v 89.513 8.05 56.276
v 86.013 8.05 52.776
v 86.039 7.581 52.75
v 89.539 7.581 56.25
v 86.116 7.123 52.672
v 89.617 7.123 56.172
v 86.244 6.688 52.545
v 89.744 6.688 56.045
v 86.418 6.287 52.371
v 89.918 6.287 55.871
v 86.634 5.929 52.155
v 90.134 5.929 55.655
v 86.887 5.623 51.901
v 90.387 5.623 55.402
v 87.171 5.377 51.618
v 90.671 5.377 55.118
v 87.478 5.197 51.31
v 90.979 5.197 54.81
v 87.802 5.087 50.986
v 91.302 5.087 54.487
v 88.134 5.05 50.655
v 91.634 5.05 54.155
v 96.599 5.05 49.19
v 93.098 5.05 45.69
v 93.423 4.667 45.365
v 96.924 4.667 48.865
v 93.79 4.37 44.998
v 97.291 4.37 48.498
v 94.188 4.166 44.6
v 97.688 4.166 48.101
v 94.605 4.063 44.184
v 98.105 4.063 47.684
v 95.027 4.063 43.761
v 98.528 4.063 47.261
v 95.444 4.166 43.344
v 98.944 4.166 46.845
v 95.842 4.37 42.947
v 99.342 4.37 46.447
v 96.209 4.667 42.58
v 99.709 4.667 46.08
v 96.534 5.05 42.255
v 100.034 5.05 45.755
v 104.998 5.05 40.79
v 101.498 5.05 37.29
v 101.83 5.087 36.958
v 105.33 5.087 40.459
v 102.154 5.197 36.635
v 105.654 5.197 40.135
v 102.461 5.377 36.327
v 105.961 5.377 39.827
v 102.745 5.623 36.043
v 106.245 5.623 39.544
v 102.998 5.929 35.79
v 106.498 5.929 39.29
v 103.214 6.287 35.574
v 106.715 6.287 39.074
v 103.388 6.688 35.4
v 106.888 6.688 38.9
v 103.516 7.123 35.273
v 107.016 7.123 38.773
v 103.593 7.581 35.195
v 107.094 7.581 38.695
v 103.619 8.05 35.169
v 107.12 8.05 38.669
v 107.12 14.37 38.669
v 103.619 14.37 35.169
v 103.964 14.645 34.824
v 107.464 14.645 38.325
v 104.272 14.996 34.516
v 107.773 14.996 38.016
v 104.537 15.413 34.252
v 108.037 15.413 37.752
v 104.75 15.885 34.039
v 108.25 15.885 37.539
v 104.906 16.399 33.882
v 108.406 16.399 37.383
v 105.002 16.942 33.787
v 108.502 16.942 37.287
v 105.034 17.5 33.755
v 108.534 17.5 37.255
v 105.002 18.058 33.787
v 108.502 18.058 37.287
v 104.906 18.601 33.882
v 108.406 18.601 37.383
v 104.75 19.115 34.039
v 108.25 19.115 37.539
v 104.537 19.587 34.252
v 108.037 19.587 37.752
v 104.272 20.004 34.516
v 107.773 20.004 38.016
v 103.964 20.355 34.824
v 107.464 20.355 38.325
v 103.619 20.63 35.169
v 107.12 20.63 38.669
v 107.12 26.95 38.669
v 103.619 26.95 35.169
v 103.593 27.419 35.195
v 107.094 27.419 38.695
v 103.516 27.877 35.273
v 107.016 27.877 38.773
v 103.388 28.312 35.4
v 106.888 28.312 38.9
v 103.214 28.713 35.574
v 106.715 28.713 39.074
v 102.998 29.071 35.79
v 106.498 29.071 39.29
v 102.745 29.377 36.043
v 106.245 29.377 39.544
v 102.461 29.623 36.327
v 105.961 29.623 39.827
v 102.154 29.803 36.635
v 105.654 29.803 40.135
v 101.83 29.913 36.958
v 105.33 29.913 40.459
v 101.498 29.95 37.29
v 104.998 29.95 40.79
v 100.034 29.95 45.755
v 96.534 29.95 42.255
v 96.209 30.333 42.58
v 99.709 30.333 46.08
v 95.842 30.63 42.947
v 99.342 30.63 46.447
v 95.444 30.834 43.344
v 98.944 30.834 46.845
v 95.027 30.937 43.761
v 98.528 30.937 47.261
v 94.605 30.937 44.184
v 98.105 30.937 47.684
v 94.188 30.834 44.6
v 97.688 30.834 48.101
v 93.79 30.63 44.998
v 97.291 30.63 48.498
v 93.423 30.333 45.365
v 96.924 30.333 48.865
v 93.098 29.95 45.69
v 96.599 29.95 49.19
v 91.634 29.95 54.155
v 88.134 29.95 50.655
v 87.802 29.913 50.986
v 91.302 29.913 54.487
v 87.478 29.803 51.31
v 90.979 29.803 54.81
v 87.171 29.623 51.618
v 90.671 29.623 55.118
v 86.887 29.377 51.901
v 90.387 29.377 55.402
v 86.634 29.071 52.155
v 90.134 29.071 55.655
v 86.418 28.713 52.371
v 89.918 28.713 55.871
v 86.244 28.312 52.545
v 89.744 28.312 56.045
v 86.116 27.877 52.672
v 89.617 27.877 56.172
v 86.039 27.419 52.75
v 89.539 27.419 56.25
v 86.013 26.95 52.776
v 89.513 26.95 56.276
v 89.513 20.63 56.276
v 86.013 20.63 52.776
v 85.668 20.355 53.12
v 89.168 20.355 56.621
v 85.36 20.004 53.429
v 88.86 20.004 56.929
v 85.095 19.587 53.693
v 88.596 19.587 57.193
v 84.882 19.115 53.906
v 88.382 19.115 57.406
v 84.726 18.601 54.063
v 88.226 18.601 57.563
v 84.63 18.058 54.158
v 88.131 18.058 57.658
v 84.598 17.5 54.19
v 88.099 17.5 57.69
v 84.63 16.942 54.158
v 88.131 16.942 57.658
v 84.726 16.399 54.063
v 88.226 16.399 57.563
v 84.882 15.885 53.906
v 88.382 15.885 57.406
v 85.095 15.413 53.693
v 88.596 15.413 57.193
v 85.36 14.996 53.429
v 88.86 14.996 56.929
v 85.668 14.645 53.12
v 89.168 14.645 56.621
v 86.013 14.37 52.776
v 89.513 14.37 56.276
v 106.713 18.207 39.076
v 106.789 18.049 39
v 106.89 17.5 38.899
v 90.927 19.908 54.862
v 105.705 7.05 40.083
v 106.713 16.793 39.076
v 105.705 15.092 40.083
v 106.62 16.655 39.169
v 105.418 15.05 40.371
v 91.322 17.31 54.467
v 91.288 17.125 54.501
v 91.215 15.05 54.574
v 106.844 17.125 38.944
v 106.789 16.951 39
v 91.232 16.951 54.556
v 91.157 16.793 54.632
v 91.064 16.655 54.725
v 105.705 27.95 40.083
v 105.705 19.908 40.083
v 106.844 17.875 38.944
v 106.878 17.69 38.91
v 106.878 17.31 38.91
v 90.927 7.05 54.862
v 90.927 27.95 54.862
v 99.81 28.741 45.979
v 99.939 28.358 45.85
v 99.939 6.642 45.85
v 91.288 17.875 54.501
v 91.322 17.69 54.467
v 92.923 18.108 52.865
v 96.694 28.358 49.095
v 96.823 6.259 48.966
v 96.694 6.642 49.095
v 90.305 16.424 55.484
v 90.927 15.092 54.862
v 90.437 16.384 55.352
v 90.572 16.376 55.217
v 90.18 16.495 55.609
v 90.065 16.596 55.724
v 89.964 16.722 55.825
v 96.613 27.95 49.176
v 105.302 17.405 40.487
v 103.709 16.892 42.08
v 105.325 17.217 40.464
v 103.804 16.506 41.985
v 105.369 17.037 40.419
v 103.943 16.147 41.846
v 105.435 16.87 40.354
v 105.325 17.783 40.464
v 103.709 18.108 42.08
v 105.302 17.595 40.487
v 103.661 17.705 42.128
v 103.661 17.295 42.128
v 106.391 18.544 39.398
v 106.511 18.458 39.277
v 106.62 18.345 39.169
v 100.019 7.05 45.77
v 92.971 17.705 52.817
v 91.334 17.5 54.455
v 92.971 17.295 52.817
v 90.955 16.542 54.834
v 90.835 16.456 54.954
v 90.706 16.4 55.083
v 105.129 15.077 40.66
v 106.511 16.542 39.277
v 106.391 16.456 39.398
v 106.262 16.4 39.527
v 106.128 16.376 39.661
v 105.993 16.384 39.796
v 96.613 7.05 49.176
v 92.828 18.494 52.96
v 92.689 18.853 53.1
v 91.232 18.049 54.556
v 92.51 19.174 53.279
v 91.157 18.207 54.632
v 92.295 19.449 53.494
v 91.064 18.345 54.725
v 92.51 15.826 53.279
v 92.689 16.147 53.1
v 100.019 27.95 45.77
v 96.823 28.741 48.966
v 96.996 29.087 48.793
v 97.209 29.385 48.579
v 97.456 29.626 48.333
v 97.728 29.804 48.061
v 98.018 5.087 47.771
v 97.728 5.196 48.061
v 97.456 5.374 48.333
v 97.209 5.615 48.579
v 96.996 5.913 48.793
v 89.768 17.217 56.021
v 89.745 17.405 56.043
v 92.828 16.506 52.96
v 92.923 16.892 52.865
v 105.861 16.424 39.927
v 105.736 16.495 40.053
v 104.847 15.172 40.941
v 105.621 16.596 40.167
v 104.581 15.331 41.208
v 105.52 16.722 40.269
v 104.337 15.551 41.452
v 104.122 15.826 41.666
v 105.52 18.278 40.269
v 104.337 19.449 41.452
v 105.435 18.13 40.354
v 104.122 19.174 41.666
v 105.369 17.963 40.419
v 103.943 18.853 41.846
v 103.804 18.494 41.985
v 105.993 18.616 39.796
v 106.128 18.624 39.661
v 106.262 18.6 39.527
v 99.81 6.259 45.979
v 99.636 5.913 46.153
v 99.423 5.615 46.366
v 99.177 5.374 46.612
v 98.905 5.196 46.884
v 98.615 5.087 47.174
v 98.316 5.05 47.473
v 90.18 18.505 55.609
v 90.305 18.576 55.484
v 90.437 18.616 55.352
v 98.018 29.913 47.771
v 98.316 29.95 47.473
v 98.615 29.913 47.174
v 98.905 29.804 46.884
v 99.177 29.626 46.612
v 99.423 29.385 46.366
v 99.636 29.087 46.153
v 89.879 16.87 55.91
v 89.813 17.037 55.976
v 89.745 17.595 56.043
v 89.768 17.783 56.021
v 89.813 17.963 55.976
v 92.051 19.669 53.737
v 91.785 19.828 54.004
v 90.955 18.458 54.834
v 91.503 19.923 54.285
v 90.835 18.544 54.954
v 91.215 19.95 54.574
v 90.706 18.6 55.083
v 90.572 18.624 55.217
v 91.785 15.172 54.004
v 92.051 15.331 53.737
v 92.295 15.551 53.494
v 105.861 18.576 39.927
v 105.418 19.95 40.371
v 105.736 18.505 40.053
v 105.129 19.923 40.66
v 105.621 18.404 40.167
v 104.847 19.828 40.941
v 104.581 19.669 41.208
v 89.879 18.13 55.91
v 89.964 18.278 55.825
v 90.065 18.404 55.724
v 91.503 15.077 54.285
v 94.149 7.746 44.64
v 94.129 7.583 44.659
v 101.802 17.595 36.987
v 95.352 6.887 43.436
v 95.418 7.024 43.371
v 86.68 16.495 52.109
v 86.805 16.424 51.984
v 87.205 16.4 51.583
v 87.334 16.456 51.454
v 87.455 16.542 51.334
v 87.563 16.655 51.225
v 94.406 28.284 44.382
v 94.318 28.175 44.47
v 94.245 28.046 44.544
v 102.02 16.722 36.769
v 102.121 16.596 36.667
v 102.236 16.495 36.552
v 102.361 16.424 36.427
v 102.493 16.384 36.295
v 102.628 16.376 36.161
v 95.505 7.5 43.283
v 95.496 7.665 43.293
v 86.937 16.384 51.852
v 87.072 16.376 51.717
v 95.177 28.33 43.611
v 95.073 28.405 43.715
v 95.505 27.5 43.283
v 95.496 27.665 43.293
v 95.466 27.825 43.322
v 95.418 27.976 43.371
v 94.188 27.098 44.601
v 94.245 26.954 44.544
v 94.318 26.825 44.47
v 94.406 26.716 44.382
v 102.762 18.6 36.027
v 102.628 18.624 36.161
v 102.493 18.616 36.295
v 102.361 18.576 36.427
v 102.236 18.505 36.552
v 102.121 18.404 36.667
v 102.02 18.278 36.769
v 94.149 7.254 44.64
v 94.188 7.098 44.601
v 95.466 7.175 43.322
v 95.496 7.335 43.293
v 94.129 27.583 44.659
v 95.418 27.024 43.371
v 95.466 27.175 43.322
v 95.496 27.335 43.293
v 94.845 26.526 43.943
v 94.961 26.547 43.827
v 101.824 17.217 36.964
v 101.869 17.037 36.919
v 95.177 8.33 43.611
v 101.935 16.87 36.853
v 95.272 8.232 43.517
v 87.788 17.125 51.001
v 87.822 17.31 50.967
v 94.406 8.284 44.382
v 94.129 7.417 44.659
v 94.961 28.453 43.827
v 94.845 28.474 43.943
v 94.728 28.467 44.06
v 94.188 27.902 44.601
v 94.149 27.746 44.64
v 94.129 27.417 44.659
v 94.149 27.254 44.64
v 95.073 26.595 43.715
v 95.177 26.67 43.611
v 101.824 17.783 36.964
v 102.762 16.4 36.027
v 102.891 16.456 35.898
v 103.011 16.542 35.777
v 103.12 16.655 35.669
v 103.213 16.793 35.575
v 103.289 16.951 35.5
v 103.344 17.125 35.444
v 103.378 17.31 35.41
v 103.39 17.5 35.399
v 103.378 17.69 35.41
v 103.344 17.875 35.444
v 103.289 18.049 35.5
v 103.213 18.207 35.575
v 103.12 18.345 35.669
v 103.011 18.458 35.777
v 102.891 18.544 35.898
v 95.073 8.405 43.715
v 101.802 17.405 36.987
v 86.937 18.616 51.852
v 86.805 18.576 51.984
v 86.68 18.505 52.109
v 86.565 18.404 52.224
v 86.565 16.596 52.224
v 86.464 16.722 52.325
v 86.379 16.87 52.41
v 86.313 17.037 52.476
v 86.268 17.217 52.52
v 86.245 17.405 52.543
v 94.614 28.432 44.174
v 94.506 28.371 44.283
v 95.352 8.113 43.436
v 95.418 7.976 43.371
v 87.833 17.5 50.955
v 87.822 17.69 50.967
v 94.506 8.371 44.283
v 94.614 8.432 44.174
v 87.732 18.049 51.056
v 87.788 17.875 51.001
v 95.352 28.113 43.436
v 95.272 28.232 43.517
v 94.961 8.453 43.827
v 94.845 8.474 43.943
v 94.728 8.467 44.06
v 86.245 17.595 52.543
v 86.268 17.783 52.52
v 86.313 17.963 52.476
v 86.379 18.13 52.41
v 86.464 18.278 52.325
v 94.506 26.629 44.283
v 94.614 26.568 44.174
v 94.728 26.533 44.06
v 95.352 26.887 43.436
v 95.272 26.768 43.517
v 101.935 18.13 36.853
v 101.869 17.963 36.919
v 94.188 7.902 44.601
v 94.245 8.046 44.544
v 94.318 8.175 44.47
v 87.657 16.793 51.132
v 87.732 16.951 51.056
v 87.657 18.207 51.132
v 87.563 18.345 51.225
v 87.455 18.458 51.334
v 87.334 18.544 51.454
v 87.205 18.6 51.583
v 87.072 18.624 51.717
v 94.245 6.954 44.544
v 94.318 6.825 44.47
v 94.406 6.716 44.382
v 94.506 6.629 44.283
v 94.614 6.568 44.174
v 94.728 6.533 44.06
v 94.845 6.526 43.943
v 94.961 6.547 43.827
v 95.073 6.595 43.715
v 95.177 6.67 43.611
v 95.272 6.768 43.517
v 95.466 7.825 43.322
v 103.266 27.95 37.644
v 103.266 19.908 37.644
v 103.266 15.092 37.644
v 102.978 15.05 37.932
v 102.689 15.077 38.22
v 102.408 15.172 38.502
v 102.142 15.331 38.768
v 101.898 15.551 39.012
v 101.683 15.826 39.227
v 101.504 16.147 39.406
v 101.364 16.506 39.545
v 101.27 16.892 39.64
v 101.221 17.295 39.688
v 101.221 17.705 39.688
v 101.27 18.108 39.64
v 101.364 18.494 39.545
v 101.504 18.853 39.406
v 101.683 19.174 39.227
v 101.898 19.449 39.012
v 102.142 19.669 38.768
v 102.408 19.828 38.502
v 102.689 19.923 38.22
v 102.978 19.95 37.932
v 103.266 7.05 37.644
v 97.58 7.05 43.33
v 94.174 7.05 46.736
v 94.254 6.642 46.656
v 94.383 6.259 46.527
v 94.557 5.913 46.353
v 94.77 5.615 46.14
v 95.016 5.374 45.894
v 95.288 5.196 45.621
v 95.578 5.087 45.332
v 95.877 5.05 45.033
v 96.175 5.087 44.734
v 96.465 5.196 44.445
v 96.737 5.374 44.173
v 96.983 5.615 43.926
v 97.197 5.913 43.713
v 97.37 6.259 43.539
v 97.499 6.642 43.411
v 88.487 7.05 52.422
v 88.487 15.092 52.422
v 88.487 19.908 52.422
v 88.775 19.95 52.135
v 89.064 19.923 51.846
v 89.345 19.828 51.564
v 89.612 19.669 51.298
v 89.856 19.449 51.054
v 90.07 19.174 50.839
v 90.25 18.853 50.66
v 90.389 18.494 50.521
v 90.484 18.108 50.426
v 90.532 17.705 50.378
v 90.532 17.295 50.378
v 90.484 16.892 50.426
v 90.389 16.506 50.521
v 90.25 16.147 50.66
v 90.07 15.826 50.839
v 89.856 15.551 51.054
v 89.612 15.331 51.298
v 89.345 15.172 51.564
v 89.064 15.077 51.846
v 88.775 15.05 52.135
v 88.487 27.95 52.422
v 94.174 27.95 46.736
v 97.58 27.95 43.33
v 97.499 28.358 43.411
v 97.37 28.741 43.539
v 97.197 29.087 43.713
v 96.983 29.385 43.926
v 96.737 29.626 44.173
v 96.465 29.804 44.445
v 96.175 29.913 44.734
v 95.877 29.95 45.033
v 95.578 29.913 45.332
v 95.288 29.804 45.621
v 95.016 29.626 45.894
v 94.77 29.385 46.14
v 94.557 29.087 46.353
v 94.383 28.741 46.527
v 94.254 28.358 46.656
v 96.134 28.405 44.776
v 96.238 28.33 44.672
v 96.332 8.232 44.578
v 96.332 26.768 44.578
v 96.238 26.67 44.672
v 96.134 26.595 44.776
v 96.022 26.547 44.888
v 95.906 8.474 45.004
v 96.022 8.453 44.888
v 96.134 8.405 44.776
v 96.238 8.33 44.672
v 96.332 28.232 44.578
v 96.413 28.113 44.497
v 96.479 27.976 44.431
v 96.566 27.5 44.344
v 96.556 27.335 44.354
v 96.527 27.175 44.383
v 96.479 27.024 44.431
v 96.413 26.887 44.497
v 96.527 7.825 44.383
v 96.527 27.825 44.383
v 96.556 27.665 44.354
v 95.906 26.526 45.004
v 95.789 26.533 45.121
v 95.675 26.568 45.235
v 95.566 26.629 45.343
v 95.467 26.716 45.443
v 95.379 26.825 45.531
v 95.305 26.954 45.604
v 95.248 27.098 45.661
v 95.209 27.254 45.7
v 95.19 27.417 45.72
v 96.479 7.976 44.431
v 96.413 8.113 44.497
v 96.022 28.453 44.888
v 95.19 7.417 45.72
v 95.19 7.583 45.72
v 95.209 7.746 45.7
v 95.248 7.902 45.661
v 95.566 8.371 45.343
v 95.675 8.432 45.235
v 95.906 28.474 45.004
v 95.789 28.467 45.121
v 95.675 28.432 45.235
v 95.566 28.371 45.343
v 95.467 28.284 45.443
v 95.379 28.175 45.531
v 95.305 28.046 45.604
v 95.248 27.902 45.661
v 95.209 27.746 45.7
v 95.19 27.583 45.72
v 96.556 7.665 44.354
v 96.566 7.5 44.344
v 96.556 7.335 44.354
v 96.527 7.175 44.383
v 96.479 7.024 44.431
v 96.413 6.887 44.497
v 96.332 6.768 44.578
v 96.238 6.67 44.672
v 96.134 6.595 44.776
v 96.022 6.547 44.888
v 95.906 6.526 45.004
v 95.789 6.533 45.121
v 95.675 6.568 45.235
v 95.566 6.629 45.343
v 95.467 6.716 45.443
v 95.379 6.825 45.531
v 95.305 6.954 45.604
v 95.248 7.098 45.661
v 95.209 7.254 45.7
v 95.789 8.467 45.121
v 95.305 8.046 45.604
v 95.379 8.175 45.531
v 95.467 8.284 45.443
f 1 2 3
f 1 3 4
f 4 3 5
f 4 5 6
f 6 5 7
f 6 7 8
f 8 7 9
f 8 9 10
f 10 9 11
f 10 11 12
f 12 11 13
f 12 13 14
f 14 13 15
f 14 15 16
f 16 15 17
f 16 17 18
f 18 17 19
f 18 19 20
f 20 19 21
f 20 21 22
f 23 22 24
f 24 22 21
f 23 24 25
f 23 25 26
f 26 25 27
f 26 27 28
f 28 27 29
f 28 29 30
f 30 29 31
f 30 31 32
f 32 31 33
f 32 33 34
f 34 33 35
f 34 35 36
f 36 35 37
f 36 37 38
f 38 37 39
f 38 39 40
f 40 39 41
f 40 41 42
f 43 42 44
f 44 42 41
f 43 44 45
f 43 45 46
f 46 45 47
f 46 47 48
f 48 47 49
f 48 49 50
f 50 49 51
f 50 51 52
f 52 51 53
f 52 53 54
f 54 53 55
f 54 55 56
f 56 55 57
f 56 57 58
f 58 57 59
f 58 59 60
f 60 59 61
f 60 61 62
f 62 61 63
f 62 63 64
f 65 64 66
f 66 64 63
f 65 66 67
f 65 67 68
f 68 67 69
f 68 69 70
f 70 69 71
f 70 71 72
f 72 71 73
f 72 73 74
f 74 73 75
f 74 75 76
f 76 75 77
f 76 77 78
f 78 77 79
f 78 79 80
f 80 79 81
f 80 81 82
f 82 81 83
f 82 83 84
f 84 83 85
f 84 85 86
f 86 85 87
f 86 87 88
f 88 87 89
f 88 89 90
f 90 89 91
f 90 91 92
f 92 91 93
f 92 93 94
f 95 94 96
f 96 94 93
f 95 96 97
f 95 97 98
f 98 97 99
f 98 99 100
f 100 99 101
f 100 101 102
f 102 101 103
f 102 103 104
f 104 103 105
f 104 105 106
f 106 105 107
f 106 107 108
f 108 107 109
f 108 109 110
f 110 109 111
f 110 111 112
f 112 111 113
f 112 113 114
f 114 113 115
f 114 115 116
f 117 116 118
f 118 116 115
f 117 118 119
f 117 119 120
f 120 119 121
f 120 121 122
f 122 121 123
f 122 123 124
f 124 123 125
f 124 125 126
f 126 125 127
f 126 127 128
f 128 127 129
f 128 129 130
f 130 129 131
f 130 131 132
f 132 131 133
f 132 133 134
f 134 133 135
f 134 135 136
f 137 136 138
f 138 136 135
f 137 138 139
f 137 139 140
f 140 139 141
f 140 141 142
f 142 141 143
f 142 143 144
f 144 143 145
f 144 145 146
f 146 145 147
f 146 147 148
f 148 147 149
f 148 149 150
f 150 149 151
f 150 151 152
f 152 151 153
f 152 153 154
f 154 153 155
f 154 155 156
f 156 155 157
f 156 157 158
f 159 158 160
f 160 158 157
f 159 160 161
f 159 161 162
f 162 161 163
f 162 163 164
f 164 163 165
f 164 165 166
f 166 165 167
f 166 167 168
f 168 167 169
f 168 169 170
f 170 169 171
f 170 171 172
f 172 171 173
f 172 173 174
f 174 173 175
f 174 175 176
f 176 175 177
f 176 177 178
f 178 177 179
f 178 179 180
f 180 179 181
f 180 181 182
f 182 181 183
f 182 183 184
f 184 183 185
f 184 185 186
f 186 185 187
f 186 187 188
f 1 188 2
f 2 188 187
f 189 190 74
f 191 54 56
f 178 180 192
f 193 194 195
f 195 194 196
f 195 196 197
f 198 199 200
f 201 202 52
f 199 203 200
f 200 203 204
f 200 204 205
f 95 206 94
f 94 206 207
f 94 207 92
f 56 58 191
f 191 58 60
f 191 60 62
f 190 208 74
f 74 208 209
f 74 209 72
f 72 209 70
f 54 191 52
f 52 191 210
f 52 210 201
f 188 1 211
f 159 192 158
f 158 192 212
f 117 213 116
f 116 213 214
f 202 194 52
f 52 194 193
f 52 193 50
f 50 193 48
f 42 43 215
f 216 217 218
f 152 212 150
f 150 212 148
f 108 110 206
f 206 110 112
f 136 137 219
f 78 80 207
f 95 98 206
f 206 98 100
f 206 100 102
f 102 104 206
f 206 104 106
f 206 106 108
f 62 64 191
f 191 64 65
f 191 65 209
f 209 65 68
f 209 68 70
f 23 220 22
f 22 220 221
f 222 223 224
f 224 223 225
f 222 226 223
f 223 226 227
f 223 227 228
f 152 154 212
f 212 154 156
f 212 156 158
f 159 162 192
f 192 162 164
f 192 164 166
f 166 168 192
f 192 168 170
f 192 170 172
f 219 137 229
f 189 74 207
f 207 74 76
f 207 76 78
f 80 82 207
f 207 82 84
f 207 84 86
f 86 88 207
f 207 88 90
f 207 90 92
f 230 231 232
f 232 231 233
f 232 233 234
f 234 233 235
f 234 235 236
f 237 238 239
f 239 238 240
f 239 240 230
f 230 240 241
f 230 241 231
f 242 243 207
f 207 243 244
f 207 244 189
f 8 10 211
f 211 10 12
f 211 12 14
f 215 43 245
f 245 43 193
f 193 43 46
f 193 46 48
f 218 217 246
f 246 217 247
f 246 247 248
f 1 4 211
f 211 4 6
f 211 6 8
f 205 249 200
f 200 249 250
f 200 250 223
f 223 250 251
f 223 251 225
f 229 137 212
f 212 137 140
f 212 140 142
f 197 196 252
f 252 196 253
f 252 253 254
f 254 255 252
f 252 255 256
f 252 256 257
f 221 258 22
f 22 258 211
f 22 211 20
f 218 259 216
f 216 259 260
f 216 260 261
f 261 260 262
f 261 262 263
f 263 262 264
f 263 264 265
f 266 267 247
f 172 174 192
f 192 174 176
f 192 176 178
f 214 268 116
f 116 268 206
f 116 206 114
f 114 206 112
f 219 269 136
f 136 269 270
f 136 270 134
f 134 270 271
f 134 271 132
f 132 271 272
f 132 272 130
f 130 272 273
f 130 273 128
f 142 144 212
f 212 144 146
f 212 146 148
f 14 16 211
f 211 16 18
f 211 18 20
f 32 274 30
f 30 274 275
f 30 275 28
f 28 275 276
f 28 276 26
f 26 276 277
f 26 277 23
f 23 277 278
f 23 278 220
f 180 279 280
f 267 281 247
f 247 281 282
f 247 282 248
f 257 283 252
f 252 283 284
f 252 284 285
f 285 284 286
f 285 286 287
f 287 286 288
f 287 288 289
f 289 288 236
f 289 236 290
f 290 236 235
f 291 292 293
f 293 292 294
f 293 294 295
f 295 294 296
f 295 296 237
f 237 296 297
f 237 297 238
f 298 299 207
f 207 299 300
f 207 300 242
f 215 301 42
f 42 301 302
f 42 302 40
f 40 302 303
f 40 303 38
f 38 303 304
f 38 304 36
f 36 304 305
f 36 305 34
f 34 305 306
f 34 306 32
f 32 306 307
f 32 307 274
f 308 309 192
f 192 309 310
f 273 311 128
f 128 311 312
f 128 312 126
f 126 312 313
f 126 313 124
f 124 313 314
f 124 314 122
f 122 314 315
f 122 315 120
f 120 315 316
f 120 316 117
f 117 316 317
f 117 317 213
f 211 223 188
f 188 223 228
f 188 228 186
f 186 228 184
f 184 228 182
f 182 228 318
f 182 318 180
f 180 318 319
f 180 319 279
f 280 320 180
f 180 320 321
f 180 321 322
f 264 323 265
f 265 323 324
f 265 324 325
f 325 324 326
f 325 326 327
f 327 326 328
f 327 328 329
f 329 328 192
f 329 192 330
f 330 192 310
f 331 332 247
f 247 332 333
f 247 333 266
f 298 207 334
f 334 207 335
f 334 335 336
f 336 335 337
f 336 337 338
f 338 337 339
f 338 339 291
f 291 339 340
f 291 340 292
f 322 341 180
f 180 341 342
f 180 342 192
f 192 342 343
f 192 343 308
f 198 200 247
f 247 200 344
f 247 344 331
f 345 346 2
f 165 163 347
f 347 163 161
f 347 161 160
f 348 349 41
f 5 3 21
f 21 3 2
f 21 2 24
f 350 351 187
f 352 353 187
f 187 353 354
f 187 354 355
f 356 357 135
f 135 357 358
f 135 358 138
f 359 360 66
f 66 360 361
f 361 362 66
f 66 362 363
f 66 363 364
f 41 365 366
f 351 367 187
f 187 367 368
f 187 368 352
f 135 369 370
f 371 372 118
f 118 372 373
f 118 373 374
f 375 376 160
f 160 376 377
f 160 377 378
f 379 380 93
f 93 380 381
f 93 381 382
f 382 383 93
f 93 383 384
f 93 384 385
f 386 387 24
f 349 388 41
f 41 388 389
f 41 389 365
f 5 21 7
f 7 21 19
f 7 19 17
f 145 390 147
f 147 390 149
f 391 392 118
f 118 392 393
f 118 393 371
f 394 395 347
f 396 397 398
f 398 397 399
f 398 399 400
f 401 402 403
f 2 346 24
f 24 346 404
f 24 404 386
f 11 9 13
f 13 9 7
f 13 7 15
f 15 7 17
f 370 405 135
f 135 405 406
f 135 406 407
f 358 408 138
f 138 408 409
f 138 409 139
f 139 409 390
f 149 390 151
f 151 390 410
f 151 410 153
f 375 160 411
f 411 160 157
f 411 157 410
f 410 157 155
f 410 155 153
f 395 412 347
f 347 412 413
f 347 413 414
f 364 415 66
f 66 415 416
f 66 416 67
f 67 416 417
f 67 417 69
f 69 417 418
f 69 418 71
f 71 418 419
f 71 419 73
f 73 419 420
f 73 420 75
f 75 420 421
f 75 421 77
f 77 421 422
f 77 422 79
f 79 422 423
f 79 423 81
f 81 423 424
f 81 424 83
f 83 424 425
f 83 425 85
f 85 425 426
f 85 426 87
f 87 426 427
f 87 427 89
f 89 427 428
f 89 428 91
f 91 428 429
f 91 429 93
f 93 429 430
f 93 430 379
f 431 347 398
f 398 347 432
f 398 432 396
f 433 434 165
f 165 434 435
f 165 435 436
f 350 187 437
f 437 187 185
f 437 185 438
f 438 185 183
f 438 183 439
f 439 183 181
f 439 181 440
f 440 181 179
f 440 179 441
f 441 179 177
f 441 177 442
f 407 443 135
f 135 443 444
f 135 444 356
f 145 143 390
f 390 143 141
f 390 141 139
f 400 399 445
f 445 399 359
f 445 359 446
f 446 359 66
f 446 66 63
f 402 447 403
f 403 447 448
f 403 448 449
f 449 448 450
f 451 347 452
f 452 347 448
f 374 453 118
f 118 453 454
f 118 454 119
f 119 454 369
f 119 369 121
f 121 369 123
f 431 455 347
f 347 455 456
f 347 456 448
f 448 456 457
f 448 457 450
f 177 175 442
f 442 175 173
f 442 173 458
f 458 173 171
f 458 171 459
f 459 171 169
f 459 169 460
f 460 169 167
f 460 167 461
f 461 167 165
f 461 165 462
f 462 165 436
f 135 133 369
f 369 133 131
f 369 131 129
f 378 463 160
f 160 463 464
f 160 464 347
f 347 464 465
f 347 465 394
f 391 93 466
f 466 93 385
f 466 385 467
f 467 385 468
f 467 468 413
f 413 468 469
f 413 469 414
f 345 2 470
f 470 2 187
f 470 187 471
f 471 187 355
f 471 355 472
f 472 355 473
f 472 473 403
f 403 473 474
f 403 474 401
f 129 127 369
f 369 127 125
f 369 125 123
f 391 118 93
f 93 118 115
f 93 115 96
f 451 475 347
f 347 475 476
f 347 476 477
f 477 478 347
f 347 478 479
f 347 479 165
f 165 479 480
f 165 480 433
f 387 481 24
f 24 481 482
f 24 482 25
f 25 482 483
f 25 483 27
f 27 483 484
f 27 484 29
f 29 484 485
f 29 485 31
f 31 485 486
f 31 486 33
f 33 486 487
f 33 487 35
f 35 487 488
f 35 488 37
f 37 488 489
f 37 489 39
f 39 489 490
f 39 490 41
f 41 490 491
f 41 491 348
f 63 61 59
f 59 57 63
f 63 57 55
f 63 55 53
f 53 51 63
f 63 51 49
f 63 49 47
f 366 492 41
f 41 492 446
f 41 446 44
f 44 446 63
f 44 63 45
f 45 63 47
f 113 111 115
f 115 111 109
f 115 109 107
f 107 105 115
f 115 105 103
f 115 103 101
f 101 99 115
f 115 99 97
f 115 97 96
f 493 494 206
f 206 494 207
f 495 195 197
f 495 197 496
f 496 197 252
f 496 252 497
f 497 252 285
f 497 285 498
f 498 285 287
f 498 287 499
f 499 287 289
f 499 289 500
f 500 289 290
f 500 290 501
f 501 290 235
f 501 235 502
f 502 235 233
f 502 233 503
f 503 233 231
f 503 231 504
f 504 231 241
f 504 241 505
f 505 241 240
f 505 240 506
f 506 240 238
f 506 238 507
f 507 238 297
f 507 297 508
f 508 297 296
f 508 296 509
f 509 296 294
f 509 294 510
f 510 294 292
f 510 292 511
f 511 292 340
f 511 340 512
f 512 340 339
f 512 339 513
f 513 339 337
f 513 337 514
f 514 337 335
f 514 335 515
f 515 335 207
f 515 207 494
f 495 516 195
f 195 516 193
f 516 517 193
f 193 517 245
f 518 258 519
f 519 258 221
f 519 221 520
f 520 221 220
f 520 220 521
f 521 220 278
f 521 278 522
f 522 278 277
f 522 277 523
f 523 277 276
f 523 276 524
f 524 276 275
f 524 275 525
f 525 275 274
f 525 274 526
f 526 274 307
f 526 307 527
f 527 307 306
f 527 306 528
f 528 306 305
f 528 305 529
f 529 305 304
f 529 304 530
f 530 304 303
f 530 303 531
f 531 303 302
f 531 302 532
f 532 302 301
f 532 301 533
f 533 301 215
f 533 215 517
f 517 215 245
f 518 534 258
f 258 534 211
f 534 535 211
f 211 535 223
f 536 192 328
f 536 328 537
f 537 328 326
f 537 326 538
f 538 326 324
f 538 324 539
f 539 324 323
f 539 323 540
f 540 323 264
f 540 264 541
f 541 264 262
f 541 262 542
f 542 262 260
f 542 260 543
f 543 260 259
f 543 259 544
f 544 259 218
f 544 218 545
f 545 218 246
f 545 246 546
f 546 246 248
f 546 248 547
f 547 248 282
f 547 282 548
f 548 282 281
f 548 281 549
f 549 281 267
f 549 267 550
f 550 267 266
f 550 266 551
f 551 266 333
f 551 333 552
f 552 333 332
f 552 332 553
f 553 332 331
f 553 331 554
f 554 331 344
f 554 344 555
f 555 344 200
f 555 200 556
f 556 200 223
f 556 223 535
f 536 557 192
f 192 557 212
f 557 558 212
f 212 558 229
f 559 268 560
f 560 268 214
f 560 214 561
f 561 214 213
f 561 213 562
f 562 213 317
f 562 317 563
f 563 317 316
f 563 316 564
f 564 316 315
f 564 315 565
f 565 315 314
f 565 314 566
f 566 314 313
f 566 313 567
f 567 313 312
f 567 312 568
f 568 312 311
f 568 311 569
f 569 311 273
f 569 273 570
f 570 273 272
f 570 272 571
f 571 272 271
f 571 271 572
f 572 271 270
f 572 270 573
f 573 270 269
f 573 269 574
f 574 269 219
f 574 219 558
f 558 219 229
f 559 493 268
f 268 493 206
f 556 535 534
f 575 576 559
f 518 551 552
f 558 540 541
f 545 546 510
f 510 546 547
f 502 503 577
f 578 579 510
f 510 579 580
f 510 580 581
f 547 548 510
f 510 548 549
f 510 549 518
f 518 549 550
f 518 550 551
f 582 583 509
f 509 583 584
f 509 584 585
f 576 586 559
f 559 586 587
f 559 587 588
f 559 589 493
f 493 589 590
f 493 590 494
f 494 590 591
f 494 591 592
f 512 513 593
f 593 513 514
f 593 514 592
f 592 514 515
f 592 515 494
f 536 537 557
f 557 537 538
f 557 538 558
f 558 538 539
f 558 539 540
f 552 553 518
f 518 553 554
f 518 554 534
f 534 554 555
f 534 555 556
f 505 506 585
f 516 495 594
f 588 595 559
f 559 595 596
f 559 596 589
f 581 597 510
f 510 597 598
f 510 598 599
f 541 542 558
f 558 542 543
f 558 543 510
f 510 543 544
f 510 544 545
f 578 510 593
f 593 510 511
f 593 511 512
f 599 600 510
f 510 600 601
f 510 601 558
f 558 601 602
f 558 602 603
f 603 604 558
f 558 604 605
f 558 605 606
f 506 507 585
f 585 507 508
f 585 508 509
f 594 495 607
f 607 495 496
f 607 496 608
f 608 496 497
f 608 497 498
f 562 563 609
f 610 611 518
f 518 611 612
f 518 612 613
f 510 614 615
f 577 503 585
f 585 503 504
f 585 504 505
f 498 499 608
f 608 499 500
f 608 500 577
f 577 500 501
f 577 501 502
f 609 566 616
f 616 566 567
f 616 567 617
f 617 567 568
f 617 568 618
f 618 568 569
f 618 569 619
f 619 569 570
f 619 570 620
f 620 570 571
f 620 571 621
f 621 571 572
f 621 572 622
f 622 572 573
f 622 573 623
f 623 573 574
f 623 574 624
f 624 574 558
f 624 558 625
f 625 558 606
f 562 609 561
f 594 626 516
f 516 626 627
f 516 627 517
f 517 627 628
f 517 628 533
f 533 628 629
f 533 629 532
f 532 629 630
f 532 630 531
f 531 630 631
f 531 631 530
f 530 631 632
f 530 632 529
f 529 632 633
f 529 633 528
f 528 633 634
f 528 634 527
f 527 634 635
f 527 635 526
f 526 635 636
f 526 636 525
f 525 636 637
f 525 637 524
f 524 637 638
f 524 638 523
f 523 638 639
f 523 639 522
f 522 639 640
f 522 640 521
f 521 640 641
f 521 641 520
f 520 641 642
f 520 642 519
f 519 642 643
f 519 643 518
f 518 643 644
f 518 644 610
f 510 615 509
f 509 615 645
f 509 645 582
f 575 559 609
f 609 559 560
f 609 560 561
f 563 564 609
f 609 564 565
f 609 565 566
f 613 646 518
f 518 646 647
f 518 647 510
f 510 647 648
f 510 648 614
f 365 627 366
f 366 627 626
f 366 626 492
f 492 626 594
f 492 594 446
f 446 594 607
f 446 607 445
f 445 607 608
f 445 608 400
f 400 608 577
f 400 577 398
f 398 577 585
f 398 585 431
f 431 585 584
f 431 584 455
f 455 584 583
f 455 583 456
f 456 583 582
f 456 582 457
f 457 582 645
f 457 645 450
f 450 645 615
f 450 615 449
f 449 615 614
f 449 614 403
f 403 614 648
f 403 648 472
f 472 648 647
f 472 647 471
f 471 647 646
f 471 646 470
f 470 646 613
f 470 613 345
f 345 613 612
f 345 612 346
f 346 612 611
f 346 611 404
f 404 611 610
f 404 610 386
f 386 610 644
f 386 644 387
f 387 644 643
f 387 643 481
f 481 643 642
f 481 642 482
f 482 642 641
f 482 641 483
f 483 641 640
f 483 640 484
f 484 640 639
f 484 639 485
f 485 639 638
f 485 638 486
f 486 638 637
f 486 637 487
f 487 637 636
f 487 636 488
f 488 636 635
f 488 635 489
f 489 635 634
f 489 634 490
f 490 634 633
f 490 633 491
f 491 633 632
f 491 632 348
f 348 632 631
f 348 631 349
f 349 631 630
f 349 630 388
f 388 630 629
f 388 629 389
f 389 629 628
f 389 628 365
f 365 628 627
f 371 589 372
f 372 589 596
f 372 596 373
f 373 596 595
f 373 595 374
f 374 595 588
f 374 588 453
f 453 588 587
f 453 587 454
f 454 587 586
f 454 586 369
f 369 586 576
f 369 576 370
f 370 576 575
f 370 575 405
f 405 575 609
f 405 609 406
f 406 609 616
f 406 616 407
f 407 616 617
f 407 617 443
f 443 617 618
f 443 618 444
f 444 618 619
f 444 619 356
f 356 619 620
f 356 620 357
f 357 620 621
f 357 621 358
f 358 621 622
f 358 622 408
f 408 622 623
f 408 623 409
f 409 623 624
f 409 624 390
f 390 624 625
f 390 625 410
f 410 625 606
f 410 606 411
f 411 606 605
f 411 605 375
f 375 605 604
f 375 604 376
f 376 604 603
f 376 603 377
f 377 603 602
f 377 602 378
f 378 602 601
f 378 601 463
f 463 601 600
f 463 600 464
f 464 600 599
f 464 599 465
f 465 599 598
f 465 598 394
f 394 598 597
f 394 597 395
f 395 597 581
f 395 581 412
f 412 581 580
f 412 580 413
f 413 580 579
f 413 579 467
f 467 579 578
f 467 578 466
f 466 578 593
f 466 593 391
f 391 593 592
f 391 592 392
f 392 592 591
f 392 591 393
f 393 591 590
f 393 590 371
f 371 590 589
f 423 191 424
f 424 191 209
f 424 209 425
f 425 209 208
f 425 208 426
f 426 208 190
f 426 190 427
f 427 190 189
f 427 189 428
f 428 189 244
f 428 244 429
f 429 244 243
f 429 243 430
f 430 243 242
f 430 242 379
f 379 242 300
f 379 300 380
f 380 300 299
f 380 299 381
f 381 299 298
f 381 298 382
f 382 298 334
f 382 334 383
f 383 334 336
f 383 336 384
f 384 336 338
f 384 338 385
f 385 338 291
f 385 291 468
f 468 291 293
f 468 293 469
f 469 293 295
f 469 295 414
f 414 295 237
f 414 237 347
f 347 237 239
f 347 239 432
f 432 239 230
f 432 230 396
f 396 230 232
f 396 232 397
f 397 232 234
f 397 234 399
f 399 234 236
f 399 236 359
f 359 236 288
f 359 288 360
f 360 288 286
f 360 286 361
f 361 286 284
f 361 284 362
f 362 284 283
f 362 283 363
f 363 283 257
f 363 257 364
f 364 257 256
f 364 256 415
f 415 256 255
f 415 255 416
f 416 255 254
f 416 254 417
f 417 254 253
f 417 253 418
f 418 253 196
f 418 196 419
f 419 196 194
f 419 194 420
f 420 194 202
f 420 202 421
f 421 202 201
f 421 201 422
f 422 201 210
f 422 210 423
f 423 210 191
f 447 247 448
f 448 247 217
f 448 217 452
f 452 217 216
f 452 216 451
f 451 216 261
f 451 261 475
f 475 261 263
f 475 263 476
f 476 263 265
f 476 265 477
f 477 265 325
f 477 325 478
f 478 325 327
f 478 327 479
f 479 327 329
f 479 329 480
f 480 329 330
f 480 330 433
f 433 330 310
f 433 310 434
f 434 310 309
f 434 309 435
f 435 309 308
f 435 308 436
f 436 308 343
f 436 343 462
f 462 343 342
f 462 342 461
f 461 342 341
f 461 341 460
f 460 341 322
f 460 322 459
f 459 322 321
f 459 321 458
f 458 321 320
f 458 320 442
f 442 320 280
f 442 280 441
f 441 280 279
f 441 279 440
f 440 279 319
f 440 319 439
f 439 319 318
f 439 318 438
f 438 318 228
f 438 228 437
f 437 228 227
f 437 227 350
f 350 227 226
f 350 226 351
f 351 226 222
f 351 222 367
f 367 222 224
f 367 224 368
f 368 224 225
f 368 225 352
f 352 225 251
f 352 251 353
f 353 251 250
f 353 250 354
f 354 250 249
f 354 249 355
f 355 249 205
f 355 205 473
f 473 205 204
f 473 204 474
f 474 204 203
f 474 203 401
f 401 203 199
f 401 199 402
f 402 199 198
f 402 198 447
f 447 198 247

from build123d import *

# Parameters (mm, degrees)
BOSS_EXTRUDE1_DEPTH = 4.95
CUT_EXTRUDE1_DEPTH  = 3.45
CUT_EXTRUDE2_REACH  = 63.277
SKETCH3_R           = 0.975
CUT_EXTRUDE3_REACH  = 63.319
SKETCH4_R           = 1.125


with BuildPart() as part:
    # Sketch1 → Boss-Extrude1 (new body)
    with BuildSketch(Plane(origin=(69.394235316, 0, 69.394235316), x_dir=(0.7071067811865475, 0, -0.7071067811865477), z_dir=(0.7071067811865477, 0, 0.7071067811865475))):
        with BuildLine():
            Line((23.501825189, 8.05), (23.501825189, 14.369504832))
            ThreePointArc((23.501825189, 14.369504832), (21.501825189, 17.5), (23.501825189, 20.630495168))
            Line((23.501825189, 20.630495168), (23.501825189, 26.95))
            ThreePointArc((23.501825189, 26.95), (24.380504846, 29.071320344), (26.501825189, 29.95))
            Line((26.501825189, 29.95), (33.522833629, 29.95))
            ThreePointArc((33.522833629, 29.95), (35.951825189, 30.95), (38.38081675, 29.95))
            Line((38.38081675, 29.95), (45.401825189, 29.95))
            ThreePointArc((45.401825189, 29.95), (47.523145533, 29.071320344), (48.401825189, 26.95))
            Line((48.401825189, 26.95), (48.401825189, 20.630495168))
            ThreePointArc((48.401825189, 20.630495168), (50.401825189, 17.5), (48.401825189, 14.369504832))
            Line((48.401825189, 14.369504832), (48.401825189, 8.05))
            ThreePointArc((48.401825189, 8.05), (47.523145533, 5.928679656), (45.401825189, 5.05))
            Line((45.401825189, 5.05), (38.38081675, 5.05))
            ThreePointArc((38.38081675, 5.05), (35.951825189, 4.05), (33.522833629, 5.05))
            Line((33.522833629, 5.05), (26.501825189, 5.05))
            ThreePointArc((26.501825189, 5.05), (24.380504846, 5.928679656), (23.501825189, 8.05))
        make_face()
    extrude(amount=BOSS_EXTRUDE1_DEPTH)

    # Sketch2 → Cut-Extrude1 (cut)
    with BuildSketch(Plane(origin=(72.894413883, 0, 72.894413883), x_dir=(0.7071067811865476, 0, -0.7071067811865476), z_dir=(0.7071067811865476, 0, 0.7071067811865476))):
        with BuildLine():
            Line((38.360144105, 27.95), (46.401825189, 27.95))
            Line((46.401825189, 27.95), (46.401825189, 19.908318916))
            ThreePointArc((46.401825189, 19.908318916), (43.501825189, 17.5), (46.401825189, 15.091681084))
            Line((46.401825189, 15.091681084), (46.401825189, 7.05))
            Line((46.401825189, 7.05), (38.360144105, 7.05))
            ThreePointArc((38.360144105, 7.05), (35.951825189, 5.05), (33.543506273, 7.05))
            Line((33.543506273, 7.05), (25.501825189, 7.05))
            Line((25.501825189, 7.05), (25.501825189, 15.091681084))
            ThreePointArc((25.501825189, 15.091681084), (28.401825189, 17.5), (25.501825189, 19.908318916))
            Line((25.501825189, 19.908318916), (25.501825189, 27.95))
            Line((25.501825189, 27.95), (33.543506273, 27.95))
            ThreePointArc((33.543506273, 27.95), (35.951825189, 29.95), (38.360144105, 27.95))
        make_face()
    extrude(amount=-CUT_EXTRUDE1_DEPTH, mode=Mode.SUBTRACT)

    # Sketch3 → Cut-Extrude2 (cut, up to next)
    with BuildSketch(Plane(origin=(70.454895488, 0, 70.454895488), x_dir=(0.7071067811865475, 0, -0.7071067811865477), z_dir=(0.7071067811865477, 0, 0.7071067811865475)), mode=Mode.PRIVATE) as cut_extrude2_sk1:
        with Locations((35.951825189, 27.5)):
            Circle(SKETCH3_R)
    cut_extrude2_tool1 = extrude(cut_extrude2_sk1.sketch, amount=-CUT_EXTRUDE2_REACH, mode=Mode.PRIVATE) & part.part
    # Sketch3 → Cut-Extrude2 (cut, up to next)
    with BuildSketch(Plane(origin=(70.454895488, 0, 70.454895488), x_dir=(0.7071067811865475, 0, -0.7071067811865477), z_dir=(0.7071067811865477, 0, 0.7071067811865475)), mode=Mode.PRIVATE) as cut_extrude2_sk2:
        with Locations((35.951825189, 7.5)):
            Circle(SKETCH3_R)
    cut_extrude2_tool2 = extrude(cut_extrude2_sk2.sketch, amount=-CUT_EXTRUDE2_REACH, mode=Mode.PRIVATE) & part.part
    add(cut_extrude2_tool1.solids().sort_by_distance((95.876675, 27.5, 45.033116))[0], mode=Mode.SUBTRACT)
    add(cut_extrude2_tool2.solids().sort_by_distance((95.876675, 7.5, 45.033116))[0], mode=Mode.SUBTRACT)

    # Sketch4 → Cut-Extrude3 (cut, up to next)
    with BuildSketch(Plane(origin=(72.894413883, 0, 72.894413883), x_dir=(0.7071067811865476, 0, -0.7071067811865476), z_dir=(0.7071067811865476, 0, 0.7071067811865476)), mode=Mode.PRIVATE) as cut_extrude3_sk1:
        with Locations((24.951825189, 17.5)):
            Circle(SKETCH4_R)
    cut_extrude3_tool1 = extrude(cut_extrude3_sk1.sketch, amount=-CUT_EXTRUDE3_REACH, mode=Mode.PRIVATE) & part.part
    # Sketch4 → Cut-Extrude3 (cut, up to next)
    with BuildSketch(Plane(origin=(72.894413883, 0, 72.894413883), x_dir=(0.7071067811865476, 0, -0.7071067811865476), z_dir=(0.7071067811865476, 0, 0.7071067811865476)), mode=Mode.PRIVATE) as cut_extrude3_sk2:
        with Locations((46.951825189, 17.5)):
            Circle(SKETCH4_R)
    cut_extrude3_tool2 = extrude(cut_extrude3_sk2.sketch, amount=-CUT_EXTRUDE3_REACH, mode=Mode.PRIVATE) & part.part
    add(cut_extrude3_tool1.solids().sort_by_distance((90.538019, 17.5, 55.250809))[0], mode=Mode.SUBTRACT)
    add(cut_extrude3_tool2.solids().sort_by_distance((106.094368, 17.5, 39.69446))[0], mode=Mode.SUBTRACT)


solid = part.part
